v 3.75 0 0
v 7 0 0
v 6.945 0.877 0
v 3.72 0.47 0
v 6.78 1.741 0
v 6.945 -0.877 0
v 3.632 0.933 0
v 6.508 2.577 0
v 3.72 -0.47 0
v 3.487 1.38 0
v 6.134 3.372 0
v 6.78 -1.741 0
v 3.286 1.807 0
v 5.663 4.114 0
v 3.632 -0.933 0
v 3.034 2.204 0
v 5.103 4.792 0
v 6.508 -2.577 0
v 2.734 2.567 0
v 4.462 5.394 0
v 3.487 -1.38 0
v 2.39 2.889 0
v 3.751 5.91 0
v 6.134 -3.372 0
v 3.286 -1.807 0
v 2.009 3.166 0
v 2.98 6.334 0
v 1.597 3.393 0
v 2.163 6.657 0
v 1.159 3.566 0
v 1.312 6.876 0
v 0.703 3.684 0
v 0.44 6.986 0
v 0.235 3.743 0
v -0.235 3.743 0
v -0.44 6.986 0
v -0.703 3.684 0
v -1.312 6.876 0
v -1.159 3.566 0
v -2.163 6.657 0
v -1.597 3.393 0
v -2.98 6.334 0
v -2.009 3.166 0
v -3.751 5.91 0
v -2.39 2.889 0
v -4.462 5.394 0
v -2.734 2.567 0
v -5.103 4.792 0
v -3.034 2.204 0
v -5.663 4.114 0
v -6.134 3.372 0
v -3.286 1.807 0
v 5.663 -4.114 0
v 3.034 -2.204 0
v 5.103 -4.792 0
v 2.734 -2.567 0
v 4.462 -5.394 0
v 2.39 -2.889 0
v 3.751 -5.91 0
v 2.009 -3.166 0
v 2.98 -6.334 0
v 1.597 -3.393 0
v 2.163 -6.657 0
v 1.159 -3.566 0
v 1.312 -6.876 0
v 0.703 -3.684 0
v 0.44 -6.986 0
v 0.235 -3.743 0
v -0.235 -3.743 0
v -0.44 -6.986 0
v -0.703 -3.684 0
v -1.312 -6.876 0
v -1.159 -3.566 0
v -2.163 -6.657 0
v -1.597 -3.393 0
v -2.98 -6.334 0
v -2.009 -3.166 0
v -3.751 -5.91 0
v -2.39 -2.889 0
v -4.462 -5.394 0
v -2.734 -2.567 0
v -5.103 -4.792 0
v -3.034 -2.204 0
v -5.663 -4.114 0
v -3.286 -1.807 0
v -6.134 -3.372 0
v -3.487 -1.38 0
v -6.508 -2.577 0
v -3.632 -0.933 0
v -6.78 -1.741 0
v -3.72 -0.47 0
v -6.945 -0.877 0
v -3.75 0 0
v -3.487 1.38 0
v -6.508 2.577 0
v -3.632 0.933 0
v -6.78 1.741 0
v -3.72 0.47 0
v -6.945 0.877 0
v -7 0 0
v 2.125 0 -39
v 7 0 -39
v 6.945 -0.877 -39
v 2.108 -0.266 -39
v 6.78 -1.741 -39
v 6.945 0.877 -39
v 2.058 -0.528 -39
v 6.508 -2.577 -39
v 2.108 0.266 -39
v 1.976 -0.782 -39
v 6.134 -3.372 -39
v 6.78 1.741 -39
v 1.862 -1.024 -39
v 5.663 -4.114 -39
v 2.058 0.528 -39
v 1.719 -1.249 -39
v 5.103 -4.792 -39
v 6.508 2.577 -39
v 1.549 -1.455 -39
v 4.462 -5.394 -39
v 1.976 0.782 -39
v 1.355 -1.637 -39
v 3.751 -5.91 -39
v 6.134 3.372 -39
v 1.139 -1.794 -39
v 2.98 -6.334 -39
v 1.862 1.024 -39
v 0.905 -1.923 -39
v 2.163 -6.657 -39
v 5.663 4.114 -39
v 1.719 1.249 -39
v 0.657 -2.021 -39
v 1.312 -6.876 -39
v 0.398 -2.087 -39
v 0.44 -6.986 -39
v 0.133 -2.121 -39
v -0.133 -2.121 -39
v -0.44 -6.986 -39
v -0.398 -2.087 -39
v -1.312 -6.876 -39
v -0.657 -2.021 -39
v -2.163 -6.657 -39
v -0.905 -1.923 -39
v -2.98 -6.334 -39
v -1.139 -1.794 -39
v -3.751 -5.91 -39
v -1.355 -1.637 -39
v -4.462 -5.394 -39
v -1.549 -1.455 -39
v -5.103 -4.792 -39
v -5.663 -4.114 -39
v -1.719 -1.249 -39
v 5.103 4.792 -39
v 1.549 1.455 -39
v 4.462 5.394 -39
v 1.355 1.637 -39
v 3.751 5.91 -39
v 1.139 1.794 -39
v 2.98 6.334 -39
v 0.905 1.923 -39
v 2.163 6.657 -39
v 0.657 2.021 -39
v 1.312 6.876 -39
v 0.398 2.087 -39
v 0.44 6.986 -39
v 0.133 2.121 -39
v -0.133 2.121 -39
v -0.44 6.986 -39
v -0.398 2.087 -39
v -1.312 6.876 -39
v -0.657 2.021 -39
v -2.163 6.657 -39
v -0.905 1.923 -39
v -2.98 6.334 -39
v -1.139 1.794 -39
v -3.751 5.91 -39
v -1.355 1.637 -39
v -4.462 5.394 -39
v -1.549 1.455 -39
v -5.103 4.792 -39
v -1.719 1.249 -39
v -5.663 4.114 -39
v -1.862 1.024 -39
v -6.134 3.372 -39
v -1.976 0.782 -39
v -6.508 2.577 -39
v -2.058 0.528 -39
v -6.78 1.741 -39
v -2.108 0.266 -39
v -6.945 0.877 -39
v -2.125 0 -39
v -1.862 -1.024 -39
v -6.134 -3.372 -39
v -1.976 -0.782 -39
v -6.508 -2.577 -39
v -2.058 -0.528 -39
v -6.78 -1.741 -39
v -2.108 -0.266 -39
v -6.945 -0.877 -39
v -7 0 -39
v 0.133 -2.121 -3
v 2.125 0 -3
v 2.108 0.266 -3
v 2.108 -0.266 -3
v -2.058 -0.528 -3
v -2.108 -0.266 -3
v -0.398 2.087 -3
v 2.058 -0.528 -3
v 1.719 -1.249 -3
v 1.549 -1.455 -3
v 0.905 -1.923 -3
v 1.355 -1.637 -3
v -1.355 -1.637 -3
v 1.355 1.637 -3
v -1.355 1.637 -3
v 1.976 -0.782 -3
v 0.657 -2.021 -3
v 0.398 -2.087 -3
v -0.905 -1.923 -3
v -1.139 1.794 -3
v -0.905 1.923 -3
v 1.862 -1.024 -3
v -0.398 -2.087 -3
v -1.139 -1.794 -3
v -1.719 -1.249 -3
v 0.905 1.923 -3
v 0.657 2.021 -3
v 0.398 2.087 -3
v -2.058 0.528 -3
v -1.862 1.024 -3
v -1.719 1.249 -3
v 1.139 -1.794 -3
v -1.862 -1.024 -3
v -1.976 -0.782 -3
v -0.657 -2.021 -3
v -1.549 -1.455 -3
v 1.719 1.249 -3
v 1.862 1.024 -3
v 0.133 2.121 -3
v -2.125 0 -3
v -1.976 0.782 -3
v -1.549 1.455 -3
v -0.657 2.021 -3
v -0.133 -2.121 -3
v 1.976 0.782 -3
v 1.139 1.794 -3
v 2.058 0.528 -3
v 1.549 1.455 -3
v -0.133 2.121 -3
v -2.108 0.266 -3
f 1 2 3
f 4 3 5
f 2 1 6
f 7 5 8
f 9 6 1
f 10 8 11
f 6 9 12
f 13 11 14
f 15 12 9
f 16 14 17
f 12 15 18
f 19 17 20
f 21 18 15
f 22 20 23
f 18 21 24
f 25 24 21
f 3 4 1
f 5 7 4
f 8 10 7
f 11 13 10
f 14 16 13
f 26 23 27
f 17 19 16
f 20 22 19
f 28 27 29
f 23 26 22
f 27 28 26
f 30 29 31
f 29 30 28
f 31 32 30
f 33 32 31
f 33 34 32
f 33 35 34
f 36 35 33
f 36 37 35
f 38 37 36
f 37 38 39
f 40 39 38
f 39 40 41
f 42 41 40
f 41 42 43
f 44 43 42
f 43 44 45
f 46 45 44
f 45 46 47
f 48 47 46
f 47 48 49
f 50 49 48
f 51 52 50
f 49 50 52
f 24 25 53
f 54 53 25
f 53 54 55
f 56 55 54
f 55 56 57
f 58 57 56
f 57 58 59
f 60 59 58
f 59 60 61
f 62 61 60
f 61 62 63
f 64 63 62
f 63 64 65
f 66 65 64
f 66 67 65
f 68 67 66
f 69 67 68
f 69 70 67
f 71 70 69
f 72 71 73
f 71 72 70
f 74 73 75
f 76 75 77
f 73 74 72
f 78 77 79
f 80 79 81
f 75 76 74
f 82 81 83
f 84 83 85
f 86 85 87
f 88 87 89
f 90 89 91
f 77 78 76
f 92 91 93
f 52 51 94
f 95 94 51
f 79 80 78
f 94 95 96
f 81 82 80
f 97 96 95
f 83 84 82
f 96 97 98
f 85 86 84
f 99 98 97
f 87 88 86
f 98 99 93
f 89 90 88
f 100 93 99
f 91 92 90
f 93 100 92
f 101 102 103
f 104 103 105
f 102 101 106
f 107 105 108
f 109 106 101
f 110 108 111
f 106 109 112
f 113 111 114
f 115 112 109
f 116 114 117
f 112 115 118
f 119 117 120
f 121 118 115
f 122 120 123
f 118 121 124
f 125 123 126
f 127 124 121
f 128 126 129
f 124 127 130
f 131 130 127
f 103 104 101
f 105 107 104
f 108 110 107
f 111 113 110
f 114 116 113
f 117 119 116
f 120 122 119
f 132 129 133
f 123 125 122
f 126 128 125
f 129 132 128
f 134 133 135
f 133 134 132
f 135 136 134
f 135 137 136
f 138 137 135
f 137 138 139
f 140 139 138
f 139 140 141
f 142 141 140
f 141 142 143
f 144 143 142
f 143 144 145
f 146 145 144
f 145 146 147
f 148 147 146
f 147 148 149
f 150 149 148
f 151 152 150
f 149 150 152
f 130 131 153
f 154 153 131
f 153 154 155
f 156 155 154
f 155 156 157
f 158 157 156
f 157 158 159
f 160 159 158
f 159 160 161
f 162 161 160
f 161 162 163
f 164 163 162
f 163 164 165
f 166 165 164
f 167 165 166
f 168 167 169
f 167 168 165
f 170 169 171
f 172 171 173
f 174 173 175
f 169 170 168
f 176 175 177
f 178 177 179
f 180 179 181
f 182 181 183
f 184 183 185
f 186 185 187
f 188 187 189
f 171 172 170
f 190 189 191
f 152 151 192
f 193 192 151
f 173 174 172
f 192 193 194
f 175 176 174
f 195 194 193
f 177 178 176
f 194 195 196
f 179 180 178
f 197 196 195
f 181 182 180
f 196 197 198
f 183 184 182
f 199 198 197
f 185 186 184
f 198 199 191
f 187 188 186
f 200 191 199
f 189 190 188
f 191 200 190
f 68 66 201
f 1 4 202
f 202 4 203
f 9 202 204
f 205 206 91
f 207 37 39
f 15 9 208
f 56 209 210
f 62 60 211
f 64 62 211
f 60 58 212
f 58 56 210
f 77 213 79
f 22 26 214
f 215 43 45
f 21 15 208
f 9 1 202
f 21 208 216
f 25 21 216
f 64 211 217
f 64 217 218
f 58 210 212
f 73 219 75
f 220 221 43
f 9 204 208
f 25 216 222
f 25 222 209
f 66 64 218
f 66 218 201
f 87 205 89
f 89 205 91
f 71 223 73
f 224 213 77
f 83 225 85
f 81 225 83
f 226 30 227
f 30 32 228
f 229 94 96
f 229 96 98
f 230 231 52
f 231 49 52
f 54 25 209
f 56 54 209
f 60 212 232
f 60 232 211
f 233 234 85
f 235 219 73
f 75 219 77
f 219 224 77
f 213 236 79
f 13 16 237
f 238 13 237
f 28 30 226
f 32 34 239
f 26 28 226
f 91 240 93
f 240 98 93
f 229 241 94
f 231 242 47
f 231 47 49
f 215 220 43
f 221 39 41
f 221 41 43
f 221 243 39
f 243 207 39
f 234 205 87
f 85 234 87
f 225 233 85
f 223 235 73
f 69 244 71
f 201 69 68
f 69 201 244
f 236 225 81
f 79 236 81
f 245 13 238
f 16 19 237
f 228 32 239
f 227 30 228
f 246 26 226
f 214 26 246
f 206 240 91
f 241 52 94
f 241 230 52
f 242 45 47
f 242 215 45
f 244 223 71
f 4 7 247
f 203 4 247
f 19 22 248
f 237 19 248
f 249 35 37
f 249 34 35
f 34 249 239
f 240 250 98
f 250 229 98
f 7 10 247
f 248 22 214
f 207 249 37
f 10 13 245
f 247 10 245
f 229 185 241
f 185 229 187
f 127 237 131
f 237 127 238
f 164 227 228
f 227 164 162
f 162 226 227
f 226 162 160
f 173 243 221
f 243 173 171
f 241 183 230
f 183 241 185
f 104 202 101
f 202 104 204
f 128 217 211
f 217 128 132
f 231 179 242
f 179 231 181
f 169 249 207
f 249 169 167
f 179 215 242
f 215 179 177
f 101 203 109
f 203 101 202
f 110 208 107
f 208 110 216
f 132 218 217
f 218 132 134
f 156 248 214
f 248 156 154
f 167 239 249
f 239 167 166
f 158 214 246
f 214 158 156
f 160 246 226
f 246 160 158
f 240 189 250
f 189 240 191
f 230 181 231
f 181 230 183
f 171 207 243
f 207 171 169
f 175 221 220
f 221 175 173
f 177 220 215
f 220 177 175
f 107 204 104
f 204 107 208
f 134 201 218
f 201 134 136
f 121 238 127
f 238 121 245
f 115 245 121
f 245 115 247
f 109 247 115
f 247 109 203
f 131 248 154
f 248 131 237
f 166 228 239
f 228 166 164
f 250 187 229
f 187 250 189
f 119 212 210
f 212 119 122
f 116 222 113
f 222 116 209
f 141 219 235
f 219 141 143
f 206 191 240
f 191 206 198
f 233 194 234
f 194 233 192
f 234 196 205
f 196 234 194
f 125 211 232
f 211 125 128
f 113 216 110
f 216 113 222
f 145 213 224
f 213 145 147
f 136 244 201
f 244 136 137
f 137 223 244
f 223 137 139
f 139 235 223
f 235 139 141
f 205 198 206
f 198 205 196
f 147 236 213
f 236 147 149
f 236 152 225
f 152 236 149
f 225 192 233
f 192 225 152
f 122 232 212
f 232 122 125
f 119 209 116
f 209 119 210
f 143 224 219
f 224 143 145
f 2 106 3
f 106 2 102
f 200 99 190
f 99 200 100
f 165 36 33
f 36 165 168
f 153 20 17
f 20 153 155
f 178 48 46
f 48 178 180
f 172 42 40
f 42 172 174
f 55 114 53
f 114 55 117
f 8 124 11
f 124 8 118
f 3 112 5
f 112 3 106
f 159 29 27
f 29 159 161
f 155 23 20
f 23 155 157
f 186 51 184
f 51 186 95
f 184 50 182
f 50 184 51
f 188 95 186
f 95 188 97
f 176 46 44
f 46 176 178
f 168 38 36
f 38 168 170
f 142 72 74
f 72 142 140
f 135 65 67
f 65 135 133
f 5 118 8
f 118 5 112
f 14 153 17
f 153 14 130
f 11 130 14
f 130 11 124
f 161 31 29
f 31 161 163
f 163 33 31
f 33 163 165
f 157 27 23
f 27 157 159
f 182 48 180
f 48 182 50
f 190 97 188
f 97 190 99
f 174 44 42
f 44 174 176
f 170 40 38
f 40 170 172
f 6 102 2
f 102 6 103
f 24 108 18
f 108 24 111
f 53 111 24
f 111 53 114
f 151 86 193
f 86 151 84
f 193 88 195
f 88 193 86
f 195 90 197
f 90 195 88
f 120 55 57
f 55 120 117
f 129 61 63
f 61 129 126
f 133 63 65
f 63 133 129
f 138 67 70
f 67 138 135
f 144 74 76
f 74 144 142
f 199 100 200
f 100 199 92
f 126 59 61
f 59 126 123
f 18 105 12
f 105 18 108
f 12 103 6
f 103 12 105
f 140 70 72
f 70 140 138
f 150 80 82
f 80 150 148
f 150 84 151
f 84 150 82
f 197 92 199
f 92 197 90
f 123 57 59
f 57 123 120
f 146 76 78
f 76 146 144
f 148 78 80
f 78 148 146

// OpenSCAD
$fn = 50;


difference() {
	union() {
		translate(v = [0, 0, -39.0000000000]) {
			cylinder(h = 39, r = 7.0000000000);
		}
		cylinder(h = 0, r = 13.0000000000);
	}
	union() {
		translate(v = [0, 0, 0]) {
			rotate(a = [0, 0, 0]) {
				difference() {
					union() {
						#translate(v = [0, 0, -39.0000000000]) {
							cylinder(h = 39, r = 2.0000000000);
						}
						#translate(v = [0, 0, -3]) {
							cylinder(h = 3, r = 7.0000000000, r1 = 2.1250000000, r2 = 3.7500000000);
						}
						#translate(v = [0, 0, -39.0000000000]) {
							cylinder(h = 39, r = 2.1250000000);
						}
						#translate(v = [0, 0, -39.0000000000]) {
							cylinder(h = 39, r = 2.0000000000);
						}
					}
					union();
				}
			}
		}
	}
}
